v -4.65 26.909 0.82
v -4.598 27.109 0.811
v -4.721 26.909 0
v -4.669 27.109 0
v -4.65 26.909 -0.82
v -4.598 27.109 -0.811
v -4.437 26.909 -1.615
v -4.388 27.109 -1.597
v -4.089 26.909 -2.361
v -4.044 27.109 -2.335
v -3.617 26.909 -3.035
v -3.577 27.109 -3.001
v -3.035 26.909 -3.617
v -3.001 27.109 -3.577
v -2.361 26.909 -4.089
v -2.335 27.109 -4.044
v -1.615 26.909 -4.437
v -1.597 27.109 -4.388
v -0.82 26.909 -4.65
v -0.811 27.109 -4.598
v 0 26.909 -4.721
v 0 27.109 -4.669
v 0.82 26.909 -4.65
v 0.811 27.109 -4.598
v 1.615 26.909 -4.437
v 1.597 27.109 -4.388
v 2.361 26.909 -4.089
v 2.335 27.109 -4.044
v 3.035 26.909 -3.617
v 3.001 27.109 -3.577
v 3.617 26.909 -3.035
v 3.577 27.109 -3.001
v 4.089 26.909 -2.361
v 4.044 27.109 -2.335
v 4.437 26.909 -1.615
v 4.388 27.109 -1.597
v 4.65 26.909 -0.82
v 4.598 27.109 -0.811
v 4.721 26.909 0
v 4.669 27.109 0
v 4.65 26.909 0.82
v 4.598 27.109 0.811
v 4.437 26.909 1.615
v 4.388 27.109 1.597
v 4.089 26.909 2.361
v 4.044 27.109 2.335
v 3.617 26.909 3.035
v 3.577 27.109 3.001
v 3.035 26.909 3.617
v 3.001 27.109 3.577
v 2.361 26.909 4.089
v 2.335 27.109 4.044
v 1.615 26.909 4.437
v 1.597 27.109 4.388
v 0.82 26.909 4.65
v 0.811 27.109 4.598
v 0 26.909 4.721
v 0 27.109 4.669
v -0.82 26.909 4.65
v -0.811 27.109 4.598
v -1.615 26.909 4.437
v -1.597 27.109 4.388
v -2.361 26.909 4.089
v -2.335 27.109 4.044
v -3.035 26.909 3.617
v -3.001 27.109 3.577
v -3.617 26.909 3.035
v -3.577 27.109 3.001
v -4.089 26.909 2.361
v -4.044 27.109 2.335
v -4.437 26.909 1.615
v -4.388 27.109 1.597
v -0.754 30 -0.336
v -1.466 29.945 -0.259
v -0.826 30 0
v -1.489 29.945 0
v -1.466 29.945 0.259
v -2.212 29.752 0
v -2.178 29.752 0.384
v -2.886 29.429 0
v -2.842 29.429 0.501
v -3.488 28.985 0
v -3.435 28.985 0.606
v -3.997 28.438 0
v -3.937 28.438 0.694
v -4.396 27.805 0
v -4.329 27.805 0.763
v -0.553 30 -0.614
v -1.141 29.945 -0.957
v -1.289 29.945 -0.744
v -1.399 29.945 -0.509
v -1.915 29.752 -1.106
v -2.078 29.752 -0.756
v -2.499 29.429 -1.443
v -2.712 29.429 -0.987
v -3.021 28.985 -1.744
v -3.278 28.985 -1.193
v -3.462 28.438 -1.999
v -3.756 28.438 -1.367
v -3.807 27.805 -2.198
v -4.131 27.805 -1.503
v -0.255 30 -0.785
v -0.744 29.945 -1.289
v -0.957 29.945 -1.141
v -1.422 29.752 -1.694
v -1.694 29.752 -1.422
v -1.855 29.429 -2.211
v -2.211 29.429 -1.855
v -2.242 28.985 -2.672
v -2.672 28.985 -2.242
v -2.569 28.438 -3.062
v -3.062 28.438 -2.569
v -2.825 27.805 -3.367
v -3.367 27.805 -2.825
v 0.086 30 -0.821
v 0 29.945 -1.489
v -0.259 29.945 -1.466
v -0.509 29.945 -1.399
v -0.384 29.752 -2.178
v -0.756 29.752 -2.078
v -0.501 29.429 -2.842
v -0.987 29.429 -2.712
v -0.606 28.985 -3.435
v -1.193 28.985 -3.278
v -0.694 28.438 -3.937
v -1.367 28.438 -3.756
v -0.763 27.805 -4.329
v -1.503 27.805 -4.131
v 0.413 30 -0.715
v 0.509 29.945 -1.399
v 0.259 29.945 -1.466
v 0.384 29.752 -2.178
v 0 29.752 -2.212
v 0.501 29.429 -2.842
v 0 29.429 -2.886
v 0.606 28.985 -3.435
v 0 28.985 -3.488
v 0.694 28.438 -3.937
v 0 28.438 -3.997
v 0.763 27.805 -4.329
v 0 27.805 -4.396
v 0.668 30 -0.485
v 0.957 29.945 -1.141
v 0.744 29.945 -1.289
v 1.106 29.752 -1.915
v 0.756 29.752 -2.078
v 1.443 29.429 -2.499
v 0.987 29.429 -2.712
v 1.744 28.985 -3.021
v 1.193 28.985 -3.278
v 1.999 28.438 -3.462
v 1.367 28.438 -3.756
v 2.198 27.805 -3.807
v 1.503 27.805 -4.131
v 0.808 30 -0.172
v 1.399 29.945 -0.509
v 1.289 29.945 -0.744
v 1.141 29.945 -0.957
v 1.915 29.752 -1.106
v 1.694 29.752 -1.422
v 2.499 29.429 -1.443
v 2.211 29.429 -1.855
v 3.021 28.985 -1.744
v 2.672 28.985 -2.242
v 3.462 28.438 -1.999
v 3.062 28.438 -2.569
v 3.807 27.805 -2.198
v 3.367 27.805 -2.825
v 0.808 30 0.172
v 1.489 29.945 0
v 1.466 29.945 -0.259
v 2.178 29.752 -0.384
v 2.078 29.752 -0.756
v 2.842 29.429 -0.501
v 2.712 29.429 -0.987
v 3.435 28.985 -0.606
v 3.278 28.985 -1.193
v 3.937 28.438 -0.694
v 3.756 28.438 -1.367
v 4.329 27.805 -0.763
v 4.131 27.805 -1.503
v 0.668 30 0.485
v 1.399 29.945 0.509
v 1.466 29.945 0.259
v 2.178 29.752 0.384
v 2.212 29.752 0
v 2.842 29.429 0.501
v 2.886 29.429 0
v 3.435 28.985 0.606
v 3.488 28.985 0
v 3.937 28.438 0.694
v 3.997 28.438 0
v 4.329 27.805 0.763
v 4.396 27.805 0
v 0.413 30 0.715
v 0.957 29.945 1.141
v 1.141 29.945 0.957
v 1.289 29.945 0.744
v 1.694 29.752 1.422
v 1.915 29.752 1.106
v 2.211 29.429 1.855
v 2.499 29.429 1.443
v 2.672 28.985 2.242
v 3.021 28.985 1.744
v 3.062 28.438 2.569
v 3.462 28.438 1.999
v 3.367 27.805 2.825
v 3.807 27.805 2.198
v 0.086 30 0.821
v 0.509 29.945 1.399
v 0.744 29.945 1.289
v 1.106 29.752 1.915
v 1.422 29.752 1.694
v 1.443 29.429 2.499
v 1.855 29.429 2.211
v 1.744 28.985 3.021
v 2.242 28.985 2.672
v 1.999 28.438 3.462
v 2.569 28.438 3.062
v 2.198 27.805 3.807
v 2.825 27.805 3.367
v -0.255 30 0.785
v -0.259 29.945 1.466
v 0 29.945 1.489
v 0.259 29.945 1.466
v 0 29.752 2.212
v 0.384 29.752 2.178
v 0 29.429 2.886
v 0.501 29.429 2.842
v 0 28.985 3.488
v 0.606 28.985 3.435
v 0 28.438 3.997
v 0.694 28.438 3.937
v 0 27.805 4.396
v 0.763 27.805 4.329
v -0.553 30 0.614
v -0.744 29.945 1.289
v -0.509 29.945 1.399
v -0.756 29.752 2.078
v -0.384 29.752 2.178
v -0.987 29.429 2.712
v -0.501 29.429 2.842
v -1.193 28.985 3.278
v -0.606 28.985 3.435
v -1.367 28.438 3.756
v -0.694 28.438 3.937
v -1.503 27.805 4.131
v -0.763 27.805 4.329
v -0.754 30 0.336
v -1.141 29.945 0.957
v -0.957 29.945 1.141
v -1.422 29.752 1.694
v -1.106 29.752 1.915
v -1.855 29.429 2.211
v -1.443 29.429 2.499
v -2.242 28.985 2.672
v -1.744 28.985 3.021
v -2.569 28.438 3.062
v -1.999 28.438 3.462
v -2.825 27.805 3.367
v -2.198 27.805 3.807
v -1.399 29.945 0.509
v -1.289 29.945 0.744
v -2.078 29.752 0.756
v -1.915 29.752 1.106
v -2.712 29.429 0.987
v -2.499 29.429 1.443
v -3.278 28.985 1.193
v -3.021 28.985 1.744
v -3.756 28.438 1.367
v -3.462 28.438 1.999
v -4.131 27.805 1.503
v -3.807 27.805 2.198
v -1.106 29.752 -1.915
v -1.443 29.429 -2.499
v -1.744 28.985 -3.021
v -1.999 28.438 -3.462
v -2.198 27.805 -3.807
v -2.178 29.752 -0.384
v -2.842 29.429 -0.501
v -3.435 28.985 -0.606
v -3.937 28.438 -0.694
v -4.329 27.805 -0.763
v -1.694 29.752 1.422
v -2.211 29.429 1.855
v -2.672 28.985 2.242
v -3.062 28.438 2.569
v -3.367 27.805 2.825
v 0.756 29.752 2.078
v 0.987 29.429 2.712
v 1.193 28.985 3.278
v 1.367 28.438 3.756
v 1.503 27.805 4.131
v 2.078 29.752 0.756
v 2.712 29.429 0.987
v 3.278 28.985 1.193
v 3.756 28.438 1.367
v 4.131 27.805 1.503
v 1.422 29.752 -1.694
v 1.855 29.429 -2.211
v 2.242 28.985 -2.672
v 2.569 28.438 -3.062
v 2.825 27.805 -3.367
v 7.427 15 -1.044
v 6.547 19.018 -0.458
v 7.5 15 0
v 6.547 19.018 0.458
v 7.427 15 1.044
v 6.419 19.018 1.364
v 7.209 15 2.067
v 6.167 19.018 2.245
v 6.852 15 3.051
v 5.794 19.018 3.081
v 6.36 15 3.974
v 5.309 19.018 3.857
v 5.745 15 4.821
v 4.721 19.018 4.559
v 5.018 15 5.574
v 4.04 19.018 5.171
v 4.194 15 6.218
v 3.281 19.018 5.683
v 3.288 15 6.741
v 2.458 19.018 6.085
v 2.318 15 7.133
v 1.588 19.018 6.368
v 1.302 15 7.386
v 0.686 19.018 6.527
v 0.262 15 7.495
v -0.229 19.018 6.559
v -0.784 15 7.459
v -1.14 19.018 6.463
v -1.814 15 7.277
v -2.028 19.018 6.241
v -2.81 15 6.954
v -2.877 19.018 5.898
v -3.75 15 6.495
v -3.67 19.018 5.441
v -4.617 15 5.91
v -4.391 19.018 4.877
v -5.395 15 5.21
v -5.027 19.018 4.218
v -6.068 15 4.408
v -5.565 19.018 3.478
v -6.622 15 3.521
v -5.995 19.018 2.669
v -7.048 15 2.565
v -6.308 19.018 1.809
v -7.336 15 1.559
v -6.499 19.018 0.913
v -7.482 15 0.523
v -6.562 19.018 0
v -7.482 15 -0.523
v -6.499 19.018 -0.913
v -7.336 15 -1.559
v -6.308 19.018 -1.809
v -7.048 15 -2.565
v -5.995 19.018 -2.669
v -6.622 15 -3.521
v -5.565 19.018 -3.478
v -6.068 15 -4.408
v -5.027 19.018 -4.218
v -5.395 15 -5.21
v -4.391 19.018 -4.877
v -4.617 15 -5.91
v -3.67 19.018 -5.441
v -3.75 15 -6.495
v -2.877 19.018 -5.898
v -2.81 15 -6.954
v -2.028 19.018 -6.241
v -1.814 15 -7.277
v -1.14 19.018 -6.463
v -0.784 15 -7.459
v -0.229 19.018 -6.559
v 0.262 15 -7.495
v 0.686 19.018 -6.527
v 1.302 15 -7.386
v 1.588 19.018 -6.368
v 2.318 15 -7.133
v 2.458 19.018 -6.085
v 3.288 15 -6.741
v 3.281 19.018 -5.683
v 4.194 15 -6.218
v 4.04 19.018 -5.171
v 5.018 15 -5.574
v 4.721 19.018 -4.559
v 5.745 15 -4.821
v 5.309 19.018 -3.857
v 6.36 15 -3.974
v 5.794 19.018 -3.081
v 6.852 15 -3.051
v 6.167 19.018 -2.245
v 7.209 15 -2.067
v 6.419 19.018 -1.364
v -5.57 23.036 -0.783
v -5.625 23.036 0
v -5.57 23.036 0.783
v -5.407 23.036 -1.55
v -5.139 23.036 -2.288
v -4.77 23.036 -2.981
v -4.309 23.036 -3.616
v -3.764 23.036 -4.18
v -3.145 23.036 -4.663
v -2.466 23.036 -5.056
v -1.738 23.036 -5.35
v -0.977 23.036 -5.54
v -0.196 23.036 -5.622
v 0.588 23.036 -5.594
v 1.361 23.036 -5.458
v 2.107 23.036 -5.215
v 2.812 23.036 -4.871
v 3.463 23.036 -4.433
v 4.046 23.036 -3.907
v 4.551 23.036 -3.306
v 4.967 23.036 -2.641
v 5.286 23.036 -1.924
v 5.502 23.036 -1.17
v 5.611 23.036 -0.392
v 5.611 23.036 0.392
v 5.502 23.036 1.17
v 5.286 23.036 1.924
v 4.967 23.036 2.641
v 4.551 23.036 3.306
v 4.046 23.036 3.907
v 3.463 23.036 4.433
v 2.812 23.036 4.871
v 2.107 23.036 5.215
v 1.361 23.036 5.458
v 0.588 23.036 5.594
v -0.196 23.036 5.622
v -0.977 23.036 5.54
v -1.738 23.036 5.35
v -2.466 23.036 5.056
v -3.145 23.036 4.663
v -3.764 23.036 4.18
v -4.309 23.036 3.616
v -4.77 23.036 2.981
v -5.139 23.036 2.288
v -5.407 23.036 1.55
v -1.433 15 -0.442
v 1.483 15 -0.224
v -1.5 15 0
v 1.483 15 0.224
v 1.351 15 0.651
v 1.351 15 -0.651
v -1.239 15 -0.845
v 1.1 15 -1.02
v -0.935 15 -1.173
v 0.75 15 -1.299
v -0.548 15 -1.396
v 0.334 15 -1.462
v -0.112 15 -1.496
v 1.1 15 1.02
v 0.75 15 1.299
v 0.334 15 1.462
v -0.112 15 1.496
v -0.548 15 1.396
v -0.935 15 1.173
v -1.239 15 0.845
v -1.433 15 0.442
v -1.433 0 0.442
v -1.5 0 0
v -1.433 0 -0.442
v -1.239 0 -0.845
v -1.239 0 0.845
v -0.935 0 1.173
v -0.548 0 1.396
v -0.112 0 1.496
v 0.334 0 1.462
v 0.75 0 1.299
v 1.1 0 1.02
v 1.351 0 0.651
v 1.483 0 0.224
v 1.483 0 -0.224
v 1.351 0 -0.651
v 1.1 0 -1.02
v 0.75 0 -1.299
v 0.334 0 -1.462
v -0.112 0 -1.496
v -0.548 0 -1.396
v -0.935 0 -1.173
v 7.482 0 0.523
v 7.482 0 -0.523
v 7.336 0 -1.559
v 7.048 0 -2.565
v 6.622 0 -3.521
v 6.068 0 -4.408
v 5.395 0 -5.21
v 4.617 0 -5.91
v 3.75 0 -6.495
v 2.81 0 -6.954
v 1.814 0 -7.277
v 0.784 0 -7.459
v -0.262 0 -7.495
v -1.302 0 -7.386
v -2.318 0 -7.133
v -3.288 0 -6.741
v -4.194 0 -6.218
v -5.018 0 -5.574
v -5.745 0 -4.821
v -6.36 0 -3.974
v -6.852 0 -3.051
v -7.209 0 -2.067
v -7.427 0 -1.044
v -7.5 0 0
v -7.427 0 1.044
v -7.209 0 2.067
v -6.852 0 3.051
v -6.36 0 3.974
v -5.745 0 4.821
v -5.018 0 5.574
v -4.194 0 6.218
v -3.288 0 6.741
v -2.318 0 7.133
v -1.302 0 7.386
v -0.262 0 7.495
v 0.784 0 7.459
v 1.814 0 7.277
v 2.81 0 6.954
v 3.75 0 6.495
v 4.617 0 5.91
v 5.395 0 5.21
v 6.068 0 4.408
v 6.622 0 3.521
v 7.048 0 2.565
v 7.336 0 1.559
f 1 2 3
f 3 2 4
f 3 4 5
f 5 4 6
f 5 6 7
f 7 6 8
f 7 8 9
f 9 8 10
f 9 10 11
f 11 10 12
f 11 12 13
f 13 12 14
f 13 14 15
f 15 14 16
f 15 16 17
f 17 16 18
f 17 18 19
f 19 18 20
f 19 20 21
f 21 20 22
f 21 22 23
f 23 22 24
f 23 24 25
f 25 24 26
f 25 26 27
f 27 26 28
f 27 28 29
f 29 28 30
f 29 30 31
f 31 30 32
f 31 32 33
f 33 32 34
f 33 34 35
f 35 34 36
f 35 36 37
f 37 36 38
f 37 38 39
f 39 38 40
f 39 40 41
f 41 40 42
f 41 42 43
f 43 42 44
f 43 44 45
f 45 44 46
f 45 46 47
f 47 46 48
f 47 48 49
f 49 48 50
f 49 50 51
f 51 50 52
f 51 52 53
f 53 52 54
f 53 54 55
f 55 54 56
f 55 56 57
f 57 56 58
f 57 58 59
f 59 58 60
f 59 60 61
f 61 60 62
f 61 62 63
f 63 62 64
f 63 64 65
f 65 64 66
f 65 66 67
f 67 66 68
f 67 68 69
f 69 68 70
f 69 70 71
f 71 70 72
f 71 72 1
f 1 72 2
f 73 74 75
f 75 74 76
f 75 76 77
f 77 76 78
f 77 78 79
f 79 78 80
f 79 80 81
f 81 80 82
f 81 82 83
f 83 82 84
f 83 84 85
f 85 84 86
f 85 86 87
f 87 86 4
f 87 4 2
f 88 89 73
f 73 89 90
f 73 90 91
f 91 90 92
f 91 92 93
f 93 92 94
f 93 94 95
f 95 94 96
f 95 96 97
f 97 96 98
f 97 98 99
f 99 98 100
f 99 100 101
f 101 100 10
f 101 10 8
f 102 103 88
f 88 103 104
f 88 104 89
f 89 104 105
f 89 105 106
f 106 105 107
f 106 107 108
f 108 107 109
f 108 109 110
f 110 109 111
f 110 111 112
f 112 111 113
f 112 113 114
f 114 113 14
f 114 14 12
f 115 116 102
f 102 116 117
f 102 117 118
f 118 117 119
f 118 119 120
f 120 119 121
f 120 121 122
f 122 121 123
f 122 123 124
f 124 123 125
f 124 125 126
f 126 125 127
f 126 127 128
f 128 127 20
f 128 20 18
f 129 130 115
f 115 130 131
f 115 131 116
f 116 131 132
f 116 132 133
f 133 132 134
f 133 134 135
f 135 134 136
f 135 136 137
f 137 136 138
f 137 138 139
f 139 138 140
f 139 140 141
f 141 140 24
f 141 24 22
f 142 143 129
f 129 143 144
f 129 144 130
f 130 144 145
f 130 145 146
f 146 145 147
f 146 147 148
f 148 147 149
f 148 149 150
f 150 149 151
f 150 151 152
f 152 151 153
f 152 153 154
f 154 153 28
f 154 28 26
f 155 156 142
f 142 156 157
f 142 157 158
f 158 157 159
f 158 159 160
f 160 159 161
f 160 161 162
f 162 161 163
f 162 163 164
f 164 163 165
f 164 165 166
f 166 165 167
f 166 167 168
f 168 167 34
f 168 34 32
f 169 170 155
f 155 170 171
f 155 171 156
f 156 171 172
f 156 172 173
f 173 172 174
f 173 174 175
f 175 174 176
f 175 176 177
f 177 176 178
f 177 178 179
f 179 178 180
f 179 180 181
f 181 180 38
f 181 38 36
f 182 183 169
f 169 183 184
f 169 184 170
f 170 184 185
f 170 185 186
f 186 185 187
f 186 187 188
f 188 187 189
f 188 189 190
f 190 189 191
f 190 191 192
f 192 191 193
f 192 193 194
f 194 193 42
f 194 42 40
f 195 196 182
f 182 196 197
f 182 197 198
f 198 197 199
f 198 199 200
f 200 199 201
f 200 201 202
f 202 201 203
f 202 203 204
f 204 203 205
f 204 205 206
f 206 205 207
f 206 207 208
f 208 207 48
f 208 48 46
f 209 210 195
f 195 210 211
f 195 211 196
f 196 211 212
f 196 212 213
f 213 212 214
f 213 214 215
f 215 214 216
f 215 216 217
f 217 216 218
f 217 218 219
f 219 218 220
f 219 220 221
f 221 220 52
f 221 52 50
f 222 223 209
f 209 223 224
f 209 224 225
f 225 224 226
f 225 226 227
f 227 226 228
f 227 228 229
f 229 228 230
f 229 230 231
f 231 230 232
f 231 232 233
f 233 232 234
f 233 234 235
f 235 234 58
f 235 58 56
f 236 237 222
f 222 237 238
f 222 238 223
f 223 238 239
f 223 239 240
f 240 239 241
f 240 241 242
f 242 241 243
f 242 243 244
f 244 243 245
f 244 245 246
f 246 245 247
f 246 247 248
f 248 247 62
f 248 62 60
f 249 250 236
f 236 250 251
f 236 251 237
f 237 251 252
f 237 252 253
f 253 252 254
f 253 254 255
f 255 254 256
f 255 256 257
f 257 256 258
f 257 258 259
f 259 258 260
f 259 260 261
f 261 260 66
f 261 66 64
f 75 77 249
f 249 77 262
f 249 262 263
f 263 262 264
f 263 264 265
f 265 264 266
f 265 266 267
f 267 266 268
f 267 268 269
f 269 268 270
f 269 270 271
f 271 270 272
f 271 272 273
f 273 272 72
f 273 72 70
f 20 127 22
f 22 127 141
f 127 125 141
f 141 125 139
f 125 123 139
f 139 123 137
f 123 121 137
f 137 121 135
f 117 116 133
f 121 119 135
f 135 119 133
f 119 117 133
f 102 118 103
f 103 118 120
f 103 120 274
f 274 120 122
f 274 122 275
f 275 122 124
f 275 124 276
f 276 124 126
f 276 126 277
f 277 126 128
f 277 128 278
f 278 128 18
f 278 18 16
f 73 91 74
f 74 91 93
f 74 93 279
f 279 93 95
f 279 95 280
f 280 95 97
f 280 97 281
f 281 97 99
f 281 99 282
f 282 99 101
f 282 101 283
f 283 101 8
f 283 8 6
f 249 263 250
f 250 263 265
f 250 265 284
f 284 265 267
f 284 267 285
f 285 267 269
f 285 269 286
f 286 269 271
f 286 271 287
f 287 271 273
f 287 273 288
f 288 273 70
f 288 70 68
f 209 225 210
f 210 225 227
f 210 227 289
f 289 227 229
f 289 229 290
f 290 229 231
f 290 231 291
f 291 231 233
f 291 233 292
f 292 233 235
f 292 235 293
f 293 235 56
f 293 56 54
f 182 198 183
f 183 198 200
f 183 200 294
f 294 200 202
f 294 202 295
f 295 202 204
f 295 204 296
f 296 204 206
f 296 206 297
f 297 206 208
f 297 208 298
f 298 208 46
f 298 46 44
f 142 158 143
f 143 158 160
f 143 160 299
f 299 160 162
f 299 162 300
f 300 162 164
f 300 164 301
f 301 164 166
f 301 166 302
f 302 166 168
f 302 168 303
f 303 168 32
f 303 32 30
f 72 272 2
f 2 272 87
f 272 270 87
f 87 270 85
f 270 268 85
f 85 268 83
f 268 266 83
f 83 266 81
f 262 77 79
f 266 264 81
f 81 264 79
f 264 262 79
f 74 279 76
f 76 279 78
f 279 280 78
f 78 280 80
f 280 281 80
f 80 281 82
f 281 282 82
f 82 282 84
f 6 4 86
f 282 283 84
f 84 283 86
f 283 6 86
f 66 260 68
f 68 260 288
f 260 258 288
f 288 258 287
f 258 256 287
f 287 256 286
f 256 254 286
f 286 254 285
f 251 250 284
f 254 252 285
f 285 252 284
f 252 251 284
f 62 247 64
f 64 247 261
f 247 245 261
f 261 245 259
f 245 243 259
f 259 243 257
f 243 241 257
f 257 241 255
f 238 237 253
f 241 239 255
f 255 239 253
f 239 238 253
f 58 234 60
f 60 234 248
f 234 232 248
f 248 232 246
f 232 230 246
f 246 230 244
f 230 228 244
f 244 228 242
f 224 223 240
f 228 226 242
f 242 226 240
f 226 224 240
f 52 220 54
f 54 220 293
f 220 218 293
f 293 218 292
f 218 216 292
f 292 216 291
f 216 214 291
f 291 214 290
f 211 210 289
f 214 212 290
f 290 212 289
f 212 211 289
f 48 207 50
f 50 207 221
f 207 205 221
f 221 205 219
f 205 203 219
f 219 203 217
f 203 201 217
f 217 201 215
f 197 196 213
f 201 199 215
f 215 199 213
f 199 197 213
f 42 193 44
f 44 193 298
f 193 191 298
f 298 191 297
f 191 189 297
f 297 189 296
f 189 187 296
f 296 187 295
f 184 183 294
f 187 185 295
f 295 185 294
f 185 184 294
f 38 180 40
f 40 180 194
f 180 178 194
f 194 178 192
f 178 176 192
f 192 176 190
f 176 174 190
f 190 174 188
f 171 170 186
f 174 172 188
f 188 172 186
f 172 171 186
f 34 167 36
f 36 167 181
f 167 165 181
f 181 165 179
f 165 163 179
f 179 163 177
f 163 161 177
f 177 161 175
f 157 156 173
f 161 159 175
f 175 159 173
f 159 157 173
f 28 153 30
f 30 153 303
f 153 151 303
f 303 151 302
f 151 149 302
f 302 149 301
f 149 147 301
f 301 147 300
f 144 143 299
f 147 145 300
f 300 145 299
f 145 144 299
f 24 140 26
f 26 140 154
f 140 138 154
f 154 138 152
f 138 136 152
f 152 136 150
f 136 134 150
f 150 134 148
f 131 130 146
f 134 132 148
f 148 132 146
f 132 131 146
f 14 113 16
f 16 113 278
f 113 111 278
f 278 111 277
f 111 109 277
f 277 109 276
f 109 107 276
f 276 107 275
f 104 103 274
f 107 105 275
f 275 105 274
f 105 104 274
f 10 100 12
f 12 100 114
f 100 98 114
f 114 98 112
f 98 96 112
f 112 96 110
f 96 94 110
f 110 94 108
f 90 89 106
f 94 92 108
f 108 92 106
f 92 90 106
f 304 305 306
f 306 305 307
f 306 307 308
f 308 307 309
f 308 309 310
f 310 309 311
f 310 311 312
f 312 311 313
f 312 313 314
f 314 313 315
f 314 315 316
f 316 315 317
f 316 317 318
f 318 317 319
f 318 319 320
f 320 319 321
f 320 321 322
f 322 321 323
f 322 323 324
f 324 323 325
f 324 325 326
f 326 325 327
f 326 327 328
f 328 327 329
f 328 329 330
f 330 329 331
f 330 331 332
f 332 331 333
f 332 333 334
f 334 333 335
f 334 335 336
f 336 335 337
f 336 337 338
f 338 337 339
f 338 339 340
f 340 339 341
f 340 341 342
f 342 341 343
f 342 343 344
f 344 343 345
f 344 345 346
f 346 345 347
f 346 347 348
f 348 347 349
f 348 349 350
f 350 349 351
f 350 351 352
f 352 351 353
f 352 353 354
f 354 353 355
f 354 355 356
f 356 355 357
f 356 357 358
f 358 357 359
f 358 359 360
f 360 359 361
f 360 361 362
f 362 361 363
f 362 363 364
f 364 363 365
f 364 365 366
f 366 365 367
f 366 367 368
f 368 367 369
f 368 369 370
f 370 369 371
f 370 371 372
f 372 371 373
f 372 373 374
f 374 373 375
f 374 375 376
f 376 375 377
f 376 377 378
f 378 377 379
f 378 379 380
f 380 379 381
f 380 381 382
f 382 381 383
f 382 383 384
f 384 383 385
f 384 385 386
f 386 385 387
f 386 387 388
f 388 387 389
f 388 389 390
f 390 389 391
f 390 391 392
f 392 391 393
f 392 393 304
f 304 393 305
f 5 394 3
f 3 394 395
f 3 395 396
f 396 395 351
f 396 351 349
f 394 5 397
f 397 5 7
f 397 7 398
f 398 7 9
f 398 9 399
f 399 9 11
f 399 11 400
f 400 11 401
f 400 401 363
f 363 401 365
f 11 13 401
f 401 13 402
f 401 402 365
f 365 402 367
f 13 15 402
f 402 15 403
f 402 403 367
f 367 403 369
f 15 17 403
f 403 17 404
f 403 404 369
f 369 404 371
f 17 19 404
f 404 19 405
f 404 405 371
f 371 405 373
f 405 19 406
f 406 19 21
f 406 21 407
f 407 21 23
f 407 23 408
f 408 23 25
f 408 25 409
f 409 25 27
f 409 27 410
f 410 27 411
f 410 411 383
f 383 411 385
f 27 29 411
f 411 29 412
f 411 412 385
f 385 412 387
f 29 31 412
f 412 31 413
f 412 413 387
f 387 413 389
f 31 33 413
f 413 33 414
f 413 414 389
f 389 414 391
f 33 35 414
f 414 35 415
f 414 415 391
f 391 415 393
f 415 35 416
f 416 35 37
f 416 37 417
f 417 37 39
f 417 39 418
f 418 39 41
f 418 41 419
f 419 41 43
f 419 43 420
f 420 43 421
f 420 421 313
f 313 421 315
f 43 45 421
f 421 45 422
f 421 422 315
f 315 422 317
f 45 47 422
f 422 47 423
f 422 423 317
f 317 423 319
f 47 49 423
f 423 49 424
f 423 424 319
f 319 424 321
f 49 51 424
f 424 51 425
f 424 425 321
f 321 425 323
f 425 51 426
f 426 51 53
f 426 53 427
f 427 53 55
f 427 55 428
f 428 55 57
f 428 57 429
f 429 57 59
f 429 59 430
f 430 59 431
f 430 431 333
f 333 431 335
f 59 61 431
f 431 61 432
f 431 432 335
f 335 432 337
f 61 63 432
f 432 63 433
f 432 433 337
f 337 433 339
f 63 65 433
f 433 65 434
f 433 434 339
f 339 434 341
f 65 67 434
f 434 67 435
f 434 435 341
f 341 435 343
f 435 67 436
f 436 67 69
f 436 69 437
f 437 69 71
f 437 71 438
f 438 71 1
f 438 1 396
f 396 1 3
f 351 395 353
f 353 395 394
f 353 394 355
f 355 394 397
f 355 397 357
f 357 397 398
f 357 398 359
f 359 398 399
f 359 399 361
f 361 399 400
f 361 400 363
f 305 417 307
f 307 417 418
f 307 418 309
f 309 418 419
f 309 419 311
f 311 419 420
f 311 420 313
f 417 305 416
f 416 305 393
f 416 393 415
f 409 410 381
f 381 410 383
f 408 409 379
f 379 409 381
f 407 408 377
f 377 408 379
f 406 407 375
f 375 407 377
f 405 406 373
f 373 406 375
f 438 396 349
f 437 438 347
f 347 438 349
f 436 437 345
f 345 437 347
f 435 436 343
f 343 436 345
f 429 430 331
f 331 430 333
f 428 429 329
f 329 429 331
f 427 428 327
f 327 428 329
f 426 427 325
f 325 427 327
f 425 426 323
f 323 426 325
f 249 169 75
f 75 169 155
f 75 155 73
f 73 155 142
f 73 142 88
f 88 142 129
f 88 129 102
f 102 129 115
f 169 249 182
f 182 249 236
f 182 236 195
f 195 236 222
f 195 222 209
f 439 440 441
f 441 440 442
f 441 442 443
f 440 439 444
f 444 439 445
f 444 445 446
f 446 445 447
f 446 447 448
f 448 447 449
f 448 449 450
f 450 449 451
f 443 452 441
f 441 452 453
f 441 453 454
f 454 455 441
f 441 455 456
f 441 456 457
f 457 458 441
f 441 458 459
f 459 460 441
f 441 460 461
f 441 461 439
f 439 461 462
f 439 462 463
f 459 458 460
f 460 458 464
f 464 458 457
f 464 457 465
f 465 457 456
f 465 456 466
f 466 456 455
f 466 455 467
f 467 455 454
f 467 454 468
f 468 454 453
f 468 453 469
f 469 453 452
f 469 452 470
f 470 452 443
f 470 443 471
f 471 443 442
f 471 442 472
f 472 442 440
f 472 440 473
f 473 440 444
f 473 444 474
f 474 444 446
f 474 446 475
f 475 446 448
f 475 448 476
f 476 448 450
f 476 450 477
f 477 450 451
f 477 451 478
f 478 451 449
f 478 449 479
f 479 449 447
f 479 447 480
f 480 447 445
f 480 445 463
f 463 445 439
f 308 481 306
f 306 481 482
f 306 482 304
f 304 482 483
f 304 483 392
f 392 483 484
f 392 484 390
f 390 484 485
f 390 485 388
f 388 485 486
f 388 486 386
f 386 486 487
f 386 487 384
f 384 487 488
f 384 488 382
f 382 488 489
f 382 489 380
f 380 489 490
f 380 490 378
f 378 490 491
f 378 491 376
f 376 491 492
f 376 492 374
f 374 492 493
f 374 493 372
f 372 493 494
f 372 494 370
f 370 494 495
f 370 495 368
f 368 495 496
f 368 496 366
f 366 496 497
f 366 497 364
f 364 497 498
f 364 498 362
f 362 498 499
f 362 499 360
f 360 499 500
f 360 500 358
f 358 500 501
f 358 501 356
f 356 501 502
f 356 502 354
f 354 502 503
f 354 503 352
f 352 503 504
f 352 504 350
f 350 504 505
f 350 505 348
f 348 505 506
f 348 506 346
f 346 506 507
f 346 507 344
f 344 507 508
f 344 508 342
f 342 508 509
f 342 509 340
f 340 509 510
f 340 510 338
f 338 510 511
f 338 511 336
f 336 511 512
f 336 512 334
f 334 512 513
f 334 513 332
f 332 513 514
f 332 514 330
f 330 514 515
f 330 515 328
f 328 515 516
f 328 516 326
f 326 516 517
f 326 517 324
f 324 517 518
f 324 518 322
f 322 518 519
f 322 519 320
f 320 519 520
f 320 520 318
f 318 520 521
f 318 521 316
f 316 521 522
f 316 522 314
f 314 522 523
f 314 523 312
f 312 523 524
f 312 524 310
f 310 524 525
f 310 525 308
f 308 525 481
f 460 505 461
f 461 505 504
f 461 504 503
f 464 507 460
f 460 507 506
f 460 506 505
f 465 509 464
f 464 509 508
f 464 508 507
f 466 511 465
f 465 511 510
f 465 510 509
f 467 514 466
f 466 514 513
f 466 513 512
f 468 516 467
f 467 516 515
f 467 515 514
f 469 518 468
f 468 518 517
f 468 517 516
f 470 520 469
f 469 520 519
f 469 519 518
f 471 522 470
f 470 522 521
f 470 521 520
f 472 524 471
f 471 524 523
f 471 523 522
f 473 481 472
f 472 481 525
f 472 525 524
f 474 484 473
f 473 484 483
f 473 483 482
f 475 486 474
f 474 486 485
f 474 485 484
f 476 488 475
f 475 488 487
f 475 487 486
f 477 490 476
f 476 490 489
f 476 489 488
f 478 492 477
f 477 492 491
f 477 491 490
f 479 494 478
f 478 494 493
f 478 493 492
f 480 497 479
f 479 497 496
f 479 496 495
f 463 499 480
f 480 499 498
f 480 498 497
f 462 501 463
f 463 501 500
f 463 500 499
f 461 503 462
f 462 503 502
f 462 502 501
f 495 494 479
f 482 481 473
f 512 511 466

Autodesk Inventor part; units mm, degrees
ref_plane "YZ Plane" through (0, 0, 0) normal (1, 0, 0) x (0, 1, 0)
ref_plane "XZ Plane" through (0, 0, 0) normal (0, 1, 0) x (-1, 0, 0)
ref_plane "XY Plane" through (0, 0, 0) normal (0, 0, 1) x (1, 0, 0)
sketch "Sketch1" plane through (0, 0, 0) normal (0, 1, 0) x (-1, 0, 0)
  circle A0 centre (0, 0) radius 7.5
  circle A1 centre (0, 0) radius 1.5
  dimension "d0" = 15
  dimension "d1" = 3
extrude "Extrusion1" add sketch "Sketch1" along normal blind 15
thread "Thread1" size "M3x0.5" class "6H" standard "ANSI Metric M Profile" full length
sketch "Sketch2" plane through (0, 15, 0) normal (0, 1, 0) x (1, 0, 0)
  circle A0 centre (0, 0) radius 4
  dimension "d6" = 8
extrude "Extrusion2" add sketch "Sketch2" along normal blind 15
loft "Loft1" add section 1 edges at (-4, 30, 0) section 2 edges at (7.5, 15, 0)
fillet "Fillet1" radius 4 1 edges at (-4, 30, 0)
properties part number "pull"
